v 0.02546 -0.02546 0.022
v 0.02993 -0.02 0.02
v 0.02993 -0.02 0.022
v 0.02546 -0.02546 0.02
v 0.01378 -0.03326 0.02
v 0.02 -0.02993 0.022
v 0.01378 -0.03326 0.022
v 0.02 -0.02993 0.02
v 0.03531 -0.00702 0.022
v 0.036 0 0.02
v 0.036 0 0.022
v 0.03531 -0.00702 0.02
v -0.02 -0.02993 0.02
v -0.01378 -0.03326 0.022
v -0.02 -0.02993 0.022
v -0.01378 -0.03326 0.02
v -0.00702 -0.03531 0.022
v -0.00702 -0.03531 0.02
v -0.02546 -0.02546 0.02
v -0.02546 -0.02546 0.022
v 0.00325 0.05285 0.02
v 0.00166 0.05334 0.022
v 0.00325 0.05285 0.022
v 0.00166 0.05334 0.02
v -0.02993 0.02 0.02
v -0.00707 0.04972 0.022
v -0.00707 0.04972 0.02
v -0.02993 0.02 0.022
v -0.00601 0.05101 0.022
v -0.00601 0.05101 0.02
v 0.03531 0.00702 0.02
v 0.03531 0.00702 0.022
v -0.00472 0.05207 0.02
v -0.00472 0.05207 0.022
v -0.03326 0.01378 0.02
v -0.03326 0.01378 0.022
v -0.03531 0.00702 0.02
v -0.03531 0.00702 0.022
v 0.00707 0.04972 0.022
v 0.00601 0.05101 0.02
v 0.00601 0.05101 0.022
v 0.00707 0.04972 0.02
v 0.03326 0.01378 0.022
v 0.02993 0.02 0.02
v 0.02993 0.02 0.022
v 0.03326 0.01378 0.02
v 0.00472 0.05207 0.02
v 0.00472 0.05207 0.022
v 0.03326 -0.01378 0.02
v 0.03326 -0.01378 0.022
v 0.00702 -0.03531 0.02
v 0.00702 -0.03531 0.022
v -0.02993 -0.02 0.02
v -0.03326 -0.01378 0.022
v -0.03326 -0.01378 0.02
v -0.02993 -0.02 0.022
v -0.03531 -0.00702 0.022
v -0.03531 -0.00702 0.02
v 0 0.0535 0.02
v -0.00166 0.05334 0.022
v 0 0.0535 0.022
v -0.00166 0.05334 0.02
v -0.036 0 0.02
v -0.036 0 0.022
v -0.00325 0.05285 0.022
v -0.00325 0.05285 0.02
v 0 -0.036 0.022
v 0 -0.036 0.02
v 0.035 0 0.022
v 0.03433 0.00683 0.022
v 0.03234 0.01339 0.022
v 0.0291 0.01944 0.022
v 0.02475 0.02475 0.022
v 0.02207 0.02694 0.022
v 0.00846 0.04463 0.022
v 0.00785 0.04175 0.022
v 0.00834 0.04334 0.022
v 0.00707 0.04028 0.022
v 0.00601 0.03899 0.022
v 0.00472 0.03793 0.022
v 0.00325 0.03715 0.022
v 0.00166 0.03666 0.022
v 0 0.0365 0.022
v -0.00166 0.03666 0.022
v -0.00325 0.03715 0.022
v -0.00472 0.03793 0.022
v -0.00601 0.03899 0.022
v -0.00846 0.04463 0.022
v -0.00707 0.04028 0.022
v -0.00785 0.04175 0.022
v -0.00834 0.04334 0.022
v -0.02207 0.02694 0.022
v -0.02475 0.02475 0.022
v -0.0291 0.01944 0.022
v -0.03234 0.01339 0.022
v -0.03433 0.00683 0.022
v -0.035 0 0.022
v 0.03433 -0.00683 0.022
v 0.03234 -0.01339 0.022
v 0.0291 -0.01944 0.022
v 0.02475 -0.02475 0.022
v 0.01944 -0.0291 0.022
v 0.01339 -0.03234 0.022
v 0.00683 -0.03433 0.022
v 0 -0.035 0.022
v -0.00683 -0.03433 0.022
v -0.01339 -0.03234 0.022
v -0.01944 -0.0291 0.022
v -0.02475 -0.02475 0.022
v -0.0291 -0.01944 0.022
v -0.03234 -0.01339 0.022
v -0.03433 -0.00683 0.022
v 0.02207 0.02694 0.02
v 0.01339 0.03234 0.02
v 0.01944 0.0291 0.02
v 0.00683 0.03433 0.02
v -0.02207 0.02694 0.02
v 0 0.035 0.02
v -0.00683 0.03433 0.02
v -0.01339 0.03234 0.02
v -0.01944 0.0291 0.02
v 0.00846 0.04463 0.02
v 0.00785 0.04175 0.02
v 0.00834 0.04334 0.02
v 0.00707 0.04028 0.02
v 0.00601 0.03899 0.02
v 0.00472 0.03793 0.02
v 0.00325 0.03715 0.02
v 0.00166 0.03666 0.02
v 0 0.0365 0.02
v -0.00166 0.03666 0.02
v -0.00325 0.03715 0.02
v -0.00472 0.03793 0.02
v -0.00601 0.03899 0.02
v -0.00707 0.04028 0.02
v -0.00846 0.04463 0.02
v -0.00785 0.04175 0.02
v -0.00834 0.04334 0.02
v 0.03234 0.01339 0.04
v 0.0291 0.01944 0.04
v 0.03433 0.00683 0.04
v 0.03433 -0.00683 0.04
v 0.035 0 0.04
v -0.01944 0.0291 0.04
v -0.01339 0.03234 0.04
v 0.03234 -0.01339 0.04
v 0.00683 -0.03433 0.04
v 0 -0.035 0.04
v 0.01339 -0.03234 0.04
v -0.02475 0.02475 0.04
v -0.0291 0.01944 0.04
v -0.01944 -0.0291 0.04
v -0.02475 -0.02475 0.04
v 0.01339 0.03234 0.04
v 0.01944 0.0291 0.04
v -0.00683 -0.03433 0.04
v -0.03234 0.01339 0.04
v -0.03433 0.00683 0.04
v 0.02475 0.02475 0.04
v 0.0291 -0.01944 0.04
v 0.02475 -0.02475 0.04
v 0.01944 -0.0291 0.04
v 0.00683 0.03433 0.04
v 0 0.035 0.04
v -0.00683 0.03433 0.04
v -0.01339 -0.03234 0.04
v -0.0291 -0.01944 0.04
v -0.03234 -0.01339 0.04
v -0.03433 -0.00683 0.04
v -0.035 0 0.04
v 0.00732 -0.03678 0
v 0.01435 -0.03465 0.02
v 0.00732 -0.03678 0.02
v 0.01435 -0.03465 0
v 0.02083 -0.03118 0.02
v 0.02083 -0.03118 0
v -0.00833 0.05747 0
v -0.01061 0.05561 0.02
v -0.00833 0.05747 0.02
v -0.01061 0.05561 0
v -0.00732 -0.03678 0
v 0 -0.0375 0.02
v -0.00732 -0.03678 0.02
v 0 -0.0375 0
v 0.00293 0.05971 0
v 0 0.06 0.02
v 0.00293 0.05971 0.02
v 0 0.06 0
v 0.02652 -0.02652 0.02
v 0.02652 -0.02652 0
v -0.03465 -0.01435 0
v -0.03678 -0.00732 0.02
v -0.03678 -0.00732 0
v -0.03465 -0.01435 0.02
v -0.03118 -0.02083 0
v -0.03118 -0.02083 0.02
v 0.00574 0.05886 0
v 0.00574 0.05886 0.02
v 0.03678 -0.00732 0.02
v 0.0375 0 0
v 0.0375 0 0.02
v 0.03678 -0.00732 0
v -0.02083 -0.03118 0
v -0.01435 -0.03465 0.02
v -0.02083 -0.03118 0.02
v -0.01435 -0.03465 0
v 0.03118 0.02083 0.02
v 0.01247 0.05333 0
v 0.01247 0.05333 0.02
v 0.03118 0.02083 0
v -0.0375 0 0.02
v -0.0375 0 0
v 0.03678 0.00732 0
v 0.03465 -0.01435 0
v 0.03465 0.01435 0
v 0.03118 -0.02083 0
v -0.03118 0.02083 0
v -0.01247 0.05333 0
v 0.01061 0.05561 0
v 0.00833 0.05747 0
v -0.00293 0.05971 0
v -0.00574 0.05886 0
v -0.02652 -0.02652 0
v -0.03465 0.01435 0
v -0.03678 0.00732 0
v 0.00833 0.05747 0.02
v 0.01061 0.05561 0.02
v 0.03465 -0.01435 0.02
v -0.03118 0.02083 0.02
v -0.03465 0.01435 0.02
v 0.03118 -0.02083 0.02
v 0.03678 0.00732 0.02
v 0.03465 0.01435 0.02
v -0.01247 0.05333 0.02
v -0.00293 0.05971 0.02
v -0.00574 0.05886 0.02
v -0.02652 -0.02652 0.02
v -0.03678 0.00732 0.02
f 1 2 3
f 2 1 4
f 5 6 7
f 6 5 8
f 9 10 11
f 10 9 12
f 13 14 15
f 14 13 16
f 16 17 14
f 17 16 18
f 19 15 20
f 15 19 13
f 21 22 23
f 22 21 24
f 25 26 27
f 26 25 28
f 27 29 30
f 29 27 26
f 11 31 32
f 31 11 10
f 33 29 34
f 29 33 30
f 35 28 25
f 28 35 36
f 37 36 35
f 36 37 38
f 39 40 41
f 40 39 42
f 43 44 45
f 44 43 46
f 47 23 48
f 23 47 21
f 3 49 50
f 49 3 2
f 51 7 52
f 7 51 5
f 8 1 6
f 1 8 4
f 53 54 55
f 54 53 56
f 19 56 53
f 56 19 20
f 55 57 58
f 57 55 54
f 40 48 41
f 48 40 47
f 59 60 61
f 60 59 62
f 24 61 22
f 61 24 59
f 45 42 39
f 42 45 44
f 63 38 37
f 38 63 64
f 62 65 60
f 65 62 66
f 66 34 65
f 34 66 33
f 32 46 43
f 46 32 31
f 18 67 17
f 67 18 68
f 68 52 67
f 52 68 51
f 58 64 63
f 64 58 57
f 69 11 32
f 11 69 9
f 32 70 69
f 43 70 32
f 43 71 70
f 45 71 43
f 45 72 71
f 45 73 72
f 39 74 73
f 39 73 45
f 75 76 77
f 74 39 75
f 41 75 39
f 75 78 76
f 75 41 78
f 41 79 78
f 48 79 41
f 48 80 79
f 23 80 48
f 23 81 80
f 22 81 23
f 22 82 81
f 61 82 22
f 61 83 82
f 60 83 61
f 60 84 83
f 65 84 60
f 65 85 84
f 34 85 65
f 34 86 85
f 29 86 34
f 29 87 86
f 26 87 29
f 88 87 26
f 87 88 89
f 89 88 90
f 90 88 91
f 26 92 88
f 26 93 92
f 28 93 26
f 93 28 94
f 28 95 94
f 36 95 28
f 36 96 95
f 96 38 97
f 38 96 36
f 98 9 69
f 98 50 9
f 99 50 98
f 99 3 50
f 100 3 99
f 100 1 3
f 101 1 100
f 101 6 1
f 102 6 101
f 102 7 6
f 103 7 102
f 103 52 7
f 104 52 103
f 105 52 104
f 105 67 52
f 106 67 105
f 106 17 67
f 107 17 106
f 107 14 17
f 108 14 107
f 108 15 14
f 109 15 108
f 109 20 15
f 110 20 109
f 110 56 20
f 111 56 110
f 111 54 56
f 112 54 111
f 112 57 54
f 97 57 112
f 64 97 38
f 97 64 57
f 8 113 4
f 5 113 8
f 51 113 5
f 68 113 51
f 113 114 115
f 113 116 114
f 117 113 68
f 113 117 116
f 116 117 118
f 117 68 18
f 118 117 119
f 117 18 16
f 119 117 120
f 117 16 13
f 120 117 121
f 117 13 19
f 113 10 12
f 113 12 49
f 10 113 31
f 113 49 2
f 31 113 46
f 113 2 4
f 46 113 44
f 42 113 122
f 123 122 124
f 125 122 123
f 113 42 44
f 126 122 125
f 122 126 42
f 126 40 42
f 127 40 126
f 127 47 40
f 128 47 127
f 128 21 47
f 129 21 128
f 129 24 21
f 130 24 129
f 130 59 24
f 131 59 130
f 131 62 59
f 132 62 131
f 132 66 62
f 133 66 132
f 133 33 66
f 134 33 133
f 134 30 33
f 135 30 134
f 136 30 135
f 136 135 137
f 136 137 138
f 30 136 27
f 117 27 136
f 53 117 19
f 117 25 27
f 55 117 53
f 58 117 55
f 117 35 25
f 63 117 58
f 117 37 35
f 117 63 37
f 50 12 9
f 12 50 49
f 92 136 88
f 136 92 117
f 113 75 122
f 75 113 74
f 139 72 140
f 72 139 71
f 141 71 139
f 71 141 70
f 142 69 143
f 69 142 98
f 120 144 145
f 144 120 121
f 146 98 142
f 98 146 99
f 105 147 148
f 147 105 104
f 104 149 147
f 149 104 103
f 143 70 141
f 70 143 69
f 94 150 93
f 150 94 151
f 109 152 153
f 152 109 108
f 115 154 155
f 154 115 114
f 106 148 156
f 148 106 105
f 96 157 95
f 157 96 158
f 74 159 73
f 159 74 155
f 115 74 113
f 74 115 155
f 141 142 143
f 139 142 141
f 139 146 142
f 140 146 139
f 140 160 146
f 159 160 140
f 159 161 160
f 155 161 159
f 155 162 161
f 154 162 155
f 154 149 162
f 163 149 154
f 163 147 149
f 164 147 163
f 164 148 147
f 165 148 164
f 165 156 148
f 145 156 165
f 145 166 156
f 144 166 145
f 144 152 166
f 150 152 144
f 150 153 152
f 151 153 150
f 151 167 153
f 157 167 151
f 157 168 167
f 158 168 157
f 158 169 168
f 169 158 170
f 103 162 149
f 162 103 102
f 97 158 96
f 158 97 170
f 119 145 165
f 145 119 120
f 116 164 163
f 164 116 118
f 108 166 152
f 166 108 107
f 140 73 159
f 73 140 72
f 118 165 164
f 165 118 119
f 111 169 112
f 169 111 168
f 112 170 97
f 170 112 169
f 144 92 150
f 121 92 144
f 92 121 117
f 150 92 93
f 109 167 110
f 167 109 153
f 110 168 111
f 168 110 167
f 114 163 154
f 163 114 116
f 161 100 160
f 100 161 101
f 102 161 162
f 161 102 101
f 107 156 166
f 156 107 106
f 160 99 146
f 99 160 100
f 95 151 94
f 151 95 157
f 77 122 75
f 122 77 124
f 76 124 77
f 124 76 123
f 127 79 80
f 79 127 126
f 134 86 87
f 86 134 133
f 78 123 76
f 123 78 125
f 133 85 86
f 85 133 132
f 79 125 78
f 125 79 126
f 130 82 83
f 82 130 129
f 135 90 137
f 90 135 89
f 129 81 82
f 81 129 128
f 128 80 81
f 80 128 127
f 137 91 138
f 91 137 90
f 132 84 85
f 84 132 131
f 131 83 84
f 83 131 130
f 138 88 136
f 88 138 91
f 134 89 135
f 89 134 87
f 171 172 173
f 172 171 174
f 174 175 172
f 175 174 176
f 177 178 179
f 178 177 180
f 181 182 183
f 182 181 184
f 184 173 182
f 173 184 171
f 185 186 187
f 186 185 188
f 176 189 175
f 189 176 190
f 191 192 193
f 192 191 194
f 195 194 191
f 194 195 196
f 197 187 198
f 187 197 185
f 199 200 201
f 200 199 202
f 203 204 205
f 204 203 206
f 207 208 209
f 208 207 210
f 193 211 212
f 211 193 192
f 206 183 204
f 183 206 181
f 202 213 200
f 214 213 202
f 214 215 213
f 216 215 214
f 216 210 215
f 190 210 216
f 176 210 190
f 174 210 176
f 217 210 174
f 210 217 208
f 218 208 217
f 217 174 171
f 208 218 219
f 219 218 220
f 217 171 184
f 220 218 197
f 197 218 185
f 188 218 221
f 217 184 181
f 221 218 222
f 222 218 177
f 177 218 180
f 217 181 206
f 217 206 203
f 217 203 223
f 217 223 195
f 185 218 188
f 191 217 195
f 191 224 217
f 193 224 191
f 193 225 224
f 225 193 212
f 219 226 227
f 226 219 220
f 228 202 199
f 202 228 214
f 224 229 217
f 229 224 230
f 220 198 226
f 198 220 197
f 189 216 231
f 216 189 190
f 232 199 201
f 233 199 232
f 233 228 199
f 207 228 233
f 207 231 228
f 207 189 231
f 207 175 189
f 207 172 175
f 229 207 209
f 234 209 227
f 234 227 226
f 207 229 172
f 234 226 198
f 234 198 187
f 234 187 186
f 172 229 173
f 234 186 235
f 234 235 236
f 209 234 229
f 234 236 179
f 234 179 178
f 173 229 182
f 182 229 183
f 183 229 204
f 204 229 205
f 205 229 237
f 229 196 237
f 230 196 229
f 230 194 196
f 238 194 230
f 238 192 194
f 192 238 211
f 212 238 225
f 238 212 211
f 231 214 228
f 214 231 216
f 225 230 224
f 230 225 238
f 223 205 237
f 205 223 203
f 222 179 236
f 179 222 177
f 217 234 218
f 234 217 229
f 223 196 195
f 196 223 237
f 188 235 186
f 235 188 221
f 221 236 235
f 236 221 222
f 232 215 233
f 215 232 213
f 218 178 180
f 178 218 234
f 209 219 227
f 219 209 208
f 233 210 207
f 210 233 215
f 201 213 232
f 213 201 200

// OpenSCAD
$fn=32;

hull() {
    cylinder(d=0.075, h=0.02);
    translate([0, 0.045, 0]) {
        cylinder(d=0.03, h=0.02);
    }
}

translate([0, 0, 0.02]) {
    cylinder(d=0.07, h=0.02); 
    translate([0, 0.045, 0]) {
        cylinder(d=0.017, h=0.002); 
    }
    difference() {
        hull() {
            cylinder(d=0.072, h=0.002);
            translate([0, 0.045, 0]) {
                cylinder(d=0.017, h=0.002);
            }
        }
        hull() {
            cylinder(d=0.068, h=0.003);
            translate([0, 0.045, 0]) {
                cylinder(d=0.013, h=0.003);
            }
        }
    }
}
